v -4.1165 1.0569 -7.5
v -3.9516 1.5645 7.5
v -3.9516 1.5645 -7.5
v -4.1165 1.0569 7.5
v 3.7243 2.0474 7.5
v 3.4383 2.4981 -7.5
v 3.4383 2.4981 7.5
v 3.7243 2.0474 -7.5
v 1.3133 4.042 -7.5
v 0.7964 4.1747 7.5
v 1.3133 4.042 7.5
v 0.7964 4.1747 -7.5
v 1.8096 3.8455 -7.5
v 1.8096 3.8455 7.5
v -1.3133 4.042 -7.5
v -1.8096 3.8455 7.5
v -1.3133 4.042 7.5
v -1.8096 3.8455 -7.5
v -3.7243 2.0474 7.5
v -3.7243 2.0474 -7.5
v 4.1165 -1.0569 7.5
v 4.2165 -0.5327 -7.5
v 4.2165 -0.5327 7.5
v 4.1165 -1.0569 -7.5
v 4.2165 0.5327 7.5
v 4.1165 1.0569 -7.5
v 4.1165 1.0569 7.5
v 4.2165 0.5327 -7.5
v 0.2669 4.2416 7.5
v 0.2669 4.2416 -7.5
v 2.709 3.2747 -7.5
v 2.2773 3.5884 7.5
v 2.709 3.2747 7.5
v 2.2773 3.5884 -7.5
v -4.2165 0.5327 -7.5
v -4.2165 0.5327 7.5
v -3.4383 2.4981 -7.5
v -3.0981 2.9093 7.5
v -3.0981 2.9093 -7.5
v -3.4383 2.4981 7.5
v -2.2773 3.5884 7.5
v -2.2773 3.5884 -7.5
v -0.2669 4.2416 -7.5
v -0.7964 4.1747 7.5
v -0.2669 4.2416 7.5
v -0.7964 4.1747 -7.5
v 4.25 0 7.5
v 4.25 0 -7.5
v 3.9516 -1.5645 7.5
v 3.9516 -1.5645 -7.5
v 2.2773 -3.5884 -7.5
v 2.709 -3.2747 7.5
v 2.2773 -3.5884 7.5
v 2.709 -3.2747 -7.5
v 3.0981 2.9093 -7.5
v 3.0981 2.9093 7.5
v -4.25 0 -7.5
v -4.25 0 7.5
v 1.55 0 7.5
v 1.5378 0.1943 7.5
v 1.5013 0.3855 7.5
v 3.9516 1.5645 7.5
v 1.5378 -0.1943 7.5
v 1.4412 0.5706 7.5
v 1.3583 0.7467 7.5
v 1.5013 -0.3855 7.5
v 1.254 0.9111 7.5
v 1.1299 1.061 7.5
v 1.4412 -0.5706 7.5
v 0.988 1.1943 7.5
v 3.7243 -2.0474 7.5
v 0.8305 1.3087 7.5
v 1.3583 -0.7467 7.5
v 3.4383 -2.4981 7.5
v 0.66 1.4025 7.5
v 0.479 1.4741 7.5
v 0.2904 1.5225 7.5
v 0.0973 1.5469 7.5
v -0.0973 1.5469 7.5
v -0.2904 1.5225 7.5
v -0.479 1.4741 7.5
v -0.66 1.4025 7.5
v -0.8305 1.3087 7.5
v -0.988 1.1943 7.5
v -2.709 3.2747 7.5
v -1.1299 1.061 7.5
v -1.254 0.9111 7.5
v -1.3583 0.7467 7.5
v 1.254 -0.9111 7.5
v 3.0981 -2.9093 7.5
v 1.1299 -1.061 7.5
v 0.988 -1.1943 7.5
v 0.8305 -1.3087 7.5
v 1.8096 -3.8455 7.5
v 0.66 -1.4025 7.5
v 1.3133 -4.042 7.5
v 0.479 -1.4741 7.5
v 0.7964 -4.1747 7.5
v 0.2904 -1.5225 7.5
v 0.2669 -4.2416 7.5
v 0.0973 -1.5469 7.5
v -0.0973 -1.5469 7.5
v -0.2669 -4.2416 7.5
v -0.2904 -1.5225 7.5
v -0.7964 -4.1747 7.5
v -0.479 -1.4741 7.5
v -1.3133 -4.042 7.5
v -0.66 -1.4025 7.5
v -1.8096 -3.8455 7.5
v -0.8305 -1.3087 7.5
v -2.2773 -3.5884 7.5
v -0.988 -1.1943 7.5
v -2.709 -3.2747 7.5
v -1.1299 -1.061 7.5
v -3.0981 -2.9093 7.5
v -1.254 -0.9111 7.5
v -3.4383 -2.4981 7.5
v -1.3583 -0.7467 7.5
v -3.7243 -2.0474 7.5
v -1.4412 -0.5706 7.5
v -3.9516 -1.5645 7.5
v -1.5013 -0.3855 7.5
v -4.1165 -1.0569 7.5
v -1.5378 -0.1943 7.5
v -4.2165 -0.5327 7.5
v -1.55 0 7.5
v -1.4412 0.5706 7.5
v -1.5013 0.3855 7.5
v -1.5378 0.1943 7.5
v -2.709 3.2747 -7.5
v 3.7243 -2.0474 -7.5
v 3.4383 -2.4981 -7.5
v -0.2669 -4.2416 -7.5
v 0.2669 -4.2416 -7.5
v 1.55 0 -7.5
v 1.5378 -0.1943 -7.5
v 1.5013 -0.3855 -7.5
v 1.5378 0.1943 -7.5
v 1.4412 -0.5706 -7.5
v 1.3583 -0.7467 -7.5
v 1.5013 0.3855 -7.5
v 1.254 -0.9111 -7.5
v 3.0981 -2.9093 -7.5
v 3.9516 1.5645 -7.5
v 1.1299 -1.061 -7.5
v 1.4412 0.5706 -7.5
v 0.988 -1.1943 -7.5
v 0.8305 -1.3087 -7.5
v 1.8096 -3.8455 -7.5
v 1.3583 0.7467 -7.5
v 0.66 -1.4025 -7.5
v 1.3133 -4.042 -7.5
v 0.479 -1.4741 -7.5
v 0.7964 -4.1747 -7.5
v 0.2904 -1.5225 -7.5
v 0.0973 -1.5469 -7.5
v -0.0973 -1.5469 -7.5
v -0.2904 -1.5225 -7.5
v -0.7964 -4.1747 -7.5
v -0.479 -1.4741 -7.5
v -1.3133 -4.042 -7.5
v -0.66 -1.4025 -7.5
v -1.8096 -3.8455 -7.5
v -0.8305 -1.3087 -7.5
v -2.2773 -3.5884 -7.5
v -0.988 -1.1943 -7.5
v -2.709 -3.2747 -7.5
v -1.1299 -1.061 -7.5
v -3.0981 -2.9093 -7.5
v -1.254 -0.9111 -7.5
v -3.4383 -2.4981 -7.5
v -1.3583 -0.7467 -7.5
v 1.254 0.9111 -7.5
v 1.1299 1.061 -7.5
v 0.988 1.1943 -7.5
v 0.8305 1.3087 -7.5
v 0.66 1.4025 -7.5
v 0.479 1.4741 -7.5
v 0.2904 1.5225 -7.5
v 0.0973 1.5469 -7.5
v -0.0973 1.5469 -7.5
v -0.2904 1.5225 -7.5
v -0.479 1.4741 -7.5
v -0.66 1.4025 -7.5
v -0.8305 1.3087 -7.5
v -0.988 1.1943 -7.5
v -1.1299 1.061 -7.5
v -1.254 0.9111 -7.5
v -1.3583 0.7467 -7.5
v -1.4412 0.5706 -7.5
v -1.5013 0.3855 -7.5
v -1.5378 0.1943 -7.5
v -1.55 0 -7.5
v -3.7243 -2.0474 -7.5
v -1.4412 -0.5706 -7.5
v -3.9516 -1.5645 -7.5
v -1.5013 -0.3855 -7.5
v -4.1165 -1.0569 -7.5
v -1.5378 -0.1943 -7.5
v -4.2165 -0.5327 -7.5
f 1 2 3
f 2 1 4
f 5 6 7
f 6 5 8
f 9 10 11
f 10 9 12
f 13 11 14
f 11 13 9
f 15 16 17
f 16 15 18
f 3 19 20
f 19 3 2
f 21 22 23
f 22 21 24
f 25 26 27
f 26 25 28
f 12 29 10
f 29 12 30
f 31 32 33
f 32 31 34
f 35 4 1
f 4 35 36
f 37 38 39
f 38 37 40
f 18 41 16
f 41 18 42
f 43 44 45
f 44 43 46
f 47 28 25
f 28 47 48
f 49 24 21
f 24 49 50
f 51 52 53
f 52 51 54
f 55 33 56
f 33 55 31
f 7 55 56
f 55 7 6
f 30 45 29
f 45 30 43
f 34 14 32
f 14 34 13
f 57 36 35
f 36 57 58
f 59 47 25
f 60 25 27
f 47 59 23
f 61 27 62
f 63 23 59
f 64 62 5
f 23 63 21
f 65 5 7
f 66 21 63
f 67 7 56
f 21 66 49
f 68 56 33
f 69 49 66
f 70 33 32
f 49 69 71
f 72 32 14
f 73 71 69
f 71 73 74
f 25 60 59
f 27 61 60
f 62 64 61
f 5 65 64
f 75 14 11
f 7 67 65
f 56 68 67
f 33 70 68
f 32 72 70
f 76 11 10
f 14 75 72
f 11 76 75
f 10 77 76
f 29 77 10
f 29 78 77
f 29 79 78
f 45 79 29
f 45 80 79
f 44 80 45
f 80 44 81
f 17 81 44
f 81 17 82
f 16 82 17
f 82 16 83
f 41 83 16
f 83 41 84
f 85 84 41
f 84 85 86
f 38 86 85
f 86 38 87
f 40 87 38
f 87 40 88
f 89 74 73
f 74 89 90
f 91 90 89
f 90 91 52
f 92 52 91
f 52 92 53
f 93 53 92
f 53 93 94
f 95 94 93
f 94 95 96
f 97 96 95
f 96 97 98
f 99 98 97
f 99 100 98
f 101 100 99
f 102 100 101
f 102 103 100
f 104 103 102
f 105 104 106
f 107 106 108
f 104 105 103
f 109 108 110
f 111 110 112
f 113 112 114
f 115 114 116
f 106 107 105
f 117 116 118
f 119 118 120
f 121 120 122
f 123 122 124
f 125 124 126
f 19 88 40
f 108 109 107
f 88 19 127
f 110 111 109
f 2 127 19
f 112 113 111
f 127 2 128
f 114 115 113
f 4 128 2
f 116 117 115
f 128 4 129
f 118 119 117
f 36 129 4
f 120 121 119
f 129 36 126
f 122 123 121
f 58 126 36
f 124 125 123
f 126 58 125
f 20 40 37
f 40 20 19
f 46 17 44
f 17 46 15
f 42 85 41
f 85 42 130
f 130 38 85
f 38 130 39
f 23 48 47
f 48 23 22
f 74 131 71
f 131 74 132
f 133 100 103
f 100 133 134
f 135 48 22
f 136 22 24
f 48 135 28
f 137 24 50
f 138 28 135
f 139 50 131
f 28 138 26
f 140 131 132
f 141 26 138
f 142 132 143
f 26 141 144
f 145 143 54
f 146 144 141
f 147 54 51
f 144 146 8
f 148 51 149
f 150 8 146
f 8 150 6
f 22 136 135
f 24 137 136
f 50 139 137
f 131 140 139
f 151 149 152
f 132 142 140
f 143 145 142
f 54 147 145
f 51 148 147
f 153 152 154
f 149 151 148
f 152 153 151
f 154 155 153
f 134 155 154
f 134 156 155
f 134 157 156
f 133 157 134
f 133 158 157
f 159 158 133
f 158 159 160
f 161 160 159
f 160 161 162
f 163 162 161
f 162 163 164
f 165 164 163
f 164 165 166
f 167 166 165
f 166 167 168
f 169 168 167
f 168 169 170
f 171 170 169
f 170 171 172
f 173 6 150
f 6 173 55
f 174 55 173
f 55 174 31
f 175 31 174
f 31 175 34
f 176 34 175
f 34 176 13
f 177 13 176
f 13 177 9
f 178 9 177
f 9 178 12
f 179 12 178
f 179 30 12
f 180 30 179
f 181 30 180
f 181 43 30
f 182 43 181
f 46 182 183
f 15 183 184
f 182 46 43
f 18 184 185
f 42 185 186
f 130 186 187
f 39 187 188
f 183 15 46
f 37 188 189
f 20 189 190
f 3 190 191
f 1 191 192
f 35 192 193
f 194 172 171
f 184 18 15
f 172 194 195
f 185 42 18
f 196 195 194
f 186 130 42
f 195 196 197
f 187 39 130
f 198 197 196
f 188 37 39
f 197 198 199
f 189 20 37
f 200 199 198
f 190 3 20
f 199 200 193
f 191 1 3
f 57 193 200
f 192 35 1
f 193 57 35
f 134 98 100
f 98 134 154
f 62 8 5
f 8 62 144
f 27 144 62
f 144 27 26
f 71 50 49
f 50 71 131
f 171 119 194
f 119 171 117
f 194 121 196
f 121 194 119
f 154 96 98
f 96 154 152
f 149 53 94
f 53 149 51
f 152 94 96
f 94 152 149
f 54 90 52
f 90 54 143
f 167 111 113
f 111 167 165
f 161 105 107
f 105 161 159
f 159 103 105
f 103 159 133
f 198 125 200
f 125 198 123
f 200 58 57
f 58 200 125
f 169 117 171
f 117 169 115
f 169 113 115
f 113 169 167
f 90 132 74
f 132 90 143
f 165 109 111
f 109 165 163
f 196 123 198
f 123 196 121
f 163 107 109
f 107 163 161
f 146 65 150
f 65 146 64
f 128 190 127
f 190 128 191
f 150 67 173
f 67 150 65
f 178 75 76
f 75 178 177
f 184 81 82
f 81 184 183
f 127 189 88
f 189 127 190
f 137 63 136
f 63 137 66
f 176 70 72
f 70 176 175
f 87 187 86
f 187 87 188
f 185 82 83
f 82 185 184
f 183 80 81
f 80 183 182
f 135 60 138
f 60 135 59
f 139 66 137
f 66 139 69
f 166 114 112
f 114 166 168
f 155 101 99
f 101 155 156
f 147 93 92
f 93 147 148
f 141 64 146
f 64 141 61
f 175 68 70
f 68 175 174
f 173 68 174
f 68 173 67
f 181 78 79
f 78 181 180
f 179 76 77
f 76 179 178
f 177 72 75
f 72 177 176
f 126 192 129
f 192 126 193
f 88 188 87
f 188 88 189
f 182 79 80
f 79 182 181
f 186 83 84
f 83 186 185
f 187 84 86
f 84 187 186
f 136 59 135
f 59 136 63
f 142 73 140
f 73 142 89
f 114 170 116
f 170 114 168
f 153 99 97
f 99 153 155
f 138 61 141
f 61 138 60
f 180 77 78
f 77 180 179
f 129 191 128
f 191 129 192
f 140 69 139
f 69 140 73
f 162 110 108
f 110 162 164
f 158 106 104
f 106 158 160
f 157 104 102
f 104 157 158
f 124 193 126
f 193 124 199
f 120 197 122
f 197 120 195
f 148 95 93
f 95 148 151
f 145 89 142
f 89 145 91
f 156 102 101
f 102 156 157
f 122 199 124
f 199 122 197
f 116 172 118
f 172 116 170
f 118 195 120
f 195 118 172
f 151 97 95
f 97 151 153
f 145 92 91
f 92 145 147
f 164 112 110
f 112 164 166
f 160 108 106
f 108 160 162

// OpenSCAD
$fn = 50;


difference() {
	union() {
		translate(v = [0, 0, -7.5000000000]) {
			cylinder(h = 15, r = 4.2500000000);
		}
	}
	union() {
		translate(v = [0, 0, -100.0000000000]) {
			cylinder(h = 200, r = 1.5500000000);
		}
	}
}
